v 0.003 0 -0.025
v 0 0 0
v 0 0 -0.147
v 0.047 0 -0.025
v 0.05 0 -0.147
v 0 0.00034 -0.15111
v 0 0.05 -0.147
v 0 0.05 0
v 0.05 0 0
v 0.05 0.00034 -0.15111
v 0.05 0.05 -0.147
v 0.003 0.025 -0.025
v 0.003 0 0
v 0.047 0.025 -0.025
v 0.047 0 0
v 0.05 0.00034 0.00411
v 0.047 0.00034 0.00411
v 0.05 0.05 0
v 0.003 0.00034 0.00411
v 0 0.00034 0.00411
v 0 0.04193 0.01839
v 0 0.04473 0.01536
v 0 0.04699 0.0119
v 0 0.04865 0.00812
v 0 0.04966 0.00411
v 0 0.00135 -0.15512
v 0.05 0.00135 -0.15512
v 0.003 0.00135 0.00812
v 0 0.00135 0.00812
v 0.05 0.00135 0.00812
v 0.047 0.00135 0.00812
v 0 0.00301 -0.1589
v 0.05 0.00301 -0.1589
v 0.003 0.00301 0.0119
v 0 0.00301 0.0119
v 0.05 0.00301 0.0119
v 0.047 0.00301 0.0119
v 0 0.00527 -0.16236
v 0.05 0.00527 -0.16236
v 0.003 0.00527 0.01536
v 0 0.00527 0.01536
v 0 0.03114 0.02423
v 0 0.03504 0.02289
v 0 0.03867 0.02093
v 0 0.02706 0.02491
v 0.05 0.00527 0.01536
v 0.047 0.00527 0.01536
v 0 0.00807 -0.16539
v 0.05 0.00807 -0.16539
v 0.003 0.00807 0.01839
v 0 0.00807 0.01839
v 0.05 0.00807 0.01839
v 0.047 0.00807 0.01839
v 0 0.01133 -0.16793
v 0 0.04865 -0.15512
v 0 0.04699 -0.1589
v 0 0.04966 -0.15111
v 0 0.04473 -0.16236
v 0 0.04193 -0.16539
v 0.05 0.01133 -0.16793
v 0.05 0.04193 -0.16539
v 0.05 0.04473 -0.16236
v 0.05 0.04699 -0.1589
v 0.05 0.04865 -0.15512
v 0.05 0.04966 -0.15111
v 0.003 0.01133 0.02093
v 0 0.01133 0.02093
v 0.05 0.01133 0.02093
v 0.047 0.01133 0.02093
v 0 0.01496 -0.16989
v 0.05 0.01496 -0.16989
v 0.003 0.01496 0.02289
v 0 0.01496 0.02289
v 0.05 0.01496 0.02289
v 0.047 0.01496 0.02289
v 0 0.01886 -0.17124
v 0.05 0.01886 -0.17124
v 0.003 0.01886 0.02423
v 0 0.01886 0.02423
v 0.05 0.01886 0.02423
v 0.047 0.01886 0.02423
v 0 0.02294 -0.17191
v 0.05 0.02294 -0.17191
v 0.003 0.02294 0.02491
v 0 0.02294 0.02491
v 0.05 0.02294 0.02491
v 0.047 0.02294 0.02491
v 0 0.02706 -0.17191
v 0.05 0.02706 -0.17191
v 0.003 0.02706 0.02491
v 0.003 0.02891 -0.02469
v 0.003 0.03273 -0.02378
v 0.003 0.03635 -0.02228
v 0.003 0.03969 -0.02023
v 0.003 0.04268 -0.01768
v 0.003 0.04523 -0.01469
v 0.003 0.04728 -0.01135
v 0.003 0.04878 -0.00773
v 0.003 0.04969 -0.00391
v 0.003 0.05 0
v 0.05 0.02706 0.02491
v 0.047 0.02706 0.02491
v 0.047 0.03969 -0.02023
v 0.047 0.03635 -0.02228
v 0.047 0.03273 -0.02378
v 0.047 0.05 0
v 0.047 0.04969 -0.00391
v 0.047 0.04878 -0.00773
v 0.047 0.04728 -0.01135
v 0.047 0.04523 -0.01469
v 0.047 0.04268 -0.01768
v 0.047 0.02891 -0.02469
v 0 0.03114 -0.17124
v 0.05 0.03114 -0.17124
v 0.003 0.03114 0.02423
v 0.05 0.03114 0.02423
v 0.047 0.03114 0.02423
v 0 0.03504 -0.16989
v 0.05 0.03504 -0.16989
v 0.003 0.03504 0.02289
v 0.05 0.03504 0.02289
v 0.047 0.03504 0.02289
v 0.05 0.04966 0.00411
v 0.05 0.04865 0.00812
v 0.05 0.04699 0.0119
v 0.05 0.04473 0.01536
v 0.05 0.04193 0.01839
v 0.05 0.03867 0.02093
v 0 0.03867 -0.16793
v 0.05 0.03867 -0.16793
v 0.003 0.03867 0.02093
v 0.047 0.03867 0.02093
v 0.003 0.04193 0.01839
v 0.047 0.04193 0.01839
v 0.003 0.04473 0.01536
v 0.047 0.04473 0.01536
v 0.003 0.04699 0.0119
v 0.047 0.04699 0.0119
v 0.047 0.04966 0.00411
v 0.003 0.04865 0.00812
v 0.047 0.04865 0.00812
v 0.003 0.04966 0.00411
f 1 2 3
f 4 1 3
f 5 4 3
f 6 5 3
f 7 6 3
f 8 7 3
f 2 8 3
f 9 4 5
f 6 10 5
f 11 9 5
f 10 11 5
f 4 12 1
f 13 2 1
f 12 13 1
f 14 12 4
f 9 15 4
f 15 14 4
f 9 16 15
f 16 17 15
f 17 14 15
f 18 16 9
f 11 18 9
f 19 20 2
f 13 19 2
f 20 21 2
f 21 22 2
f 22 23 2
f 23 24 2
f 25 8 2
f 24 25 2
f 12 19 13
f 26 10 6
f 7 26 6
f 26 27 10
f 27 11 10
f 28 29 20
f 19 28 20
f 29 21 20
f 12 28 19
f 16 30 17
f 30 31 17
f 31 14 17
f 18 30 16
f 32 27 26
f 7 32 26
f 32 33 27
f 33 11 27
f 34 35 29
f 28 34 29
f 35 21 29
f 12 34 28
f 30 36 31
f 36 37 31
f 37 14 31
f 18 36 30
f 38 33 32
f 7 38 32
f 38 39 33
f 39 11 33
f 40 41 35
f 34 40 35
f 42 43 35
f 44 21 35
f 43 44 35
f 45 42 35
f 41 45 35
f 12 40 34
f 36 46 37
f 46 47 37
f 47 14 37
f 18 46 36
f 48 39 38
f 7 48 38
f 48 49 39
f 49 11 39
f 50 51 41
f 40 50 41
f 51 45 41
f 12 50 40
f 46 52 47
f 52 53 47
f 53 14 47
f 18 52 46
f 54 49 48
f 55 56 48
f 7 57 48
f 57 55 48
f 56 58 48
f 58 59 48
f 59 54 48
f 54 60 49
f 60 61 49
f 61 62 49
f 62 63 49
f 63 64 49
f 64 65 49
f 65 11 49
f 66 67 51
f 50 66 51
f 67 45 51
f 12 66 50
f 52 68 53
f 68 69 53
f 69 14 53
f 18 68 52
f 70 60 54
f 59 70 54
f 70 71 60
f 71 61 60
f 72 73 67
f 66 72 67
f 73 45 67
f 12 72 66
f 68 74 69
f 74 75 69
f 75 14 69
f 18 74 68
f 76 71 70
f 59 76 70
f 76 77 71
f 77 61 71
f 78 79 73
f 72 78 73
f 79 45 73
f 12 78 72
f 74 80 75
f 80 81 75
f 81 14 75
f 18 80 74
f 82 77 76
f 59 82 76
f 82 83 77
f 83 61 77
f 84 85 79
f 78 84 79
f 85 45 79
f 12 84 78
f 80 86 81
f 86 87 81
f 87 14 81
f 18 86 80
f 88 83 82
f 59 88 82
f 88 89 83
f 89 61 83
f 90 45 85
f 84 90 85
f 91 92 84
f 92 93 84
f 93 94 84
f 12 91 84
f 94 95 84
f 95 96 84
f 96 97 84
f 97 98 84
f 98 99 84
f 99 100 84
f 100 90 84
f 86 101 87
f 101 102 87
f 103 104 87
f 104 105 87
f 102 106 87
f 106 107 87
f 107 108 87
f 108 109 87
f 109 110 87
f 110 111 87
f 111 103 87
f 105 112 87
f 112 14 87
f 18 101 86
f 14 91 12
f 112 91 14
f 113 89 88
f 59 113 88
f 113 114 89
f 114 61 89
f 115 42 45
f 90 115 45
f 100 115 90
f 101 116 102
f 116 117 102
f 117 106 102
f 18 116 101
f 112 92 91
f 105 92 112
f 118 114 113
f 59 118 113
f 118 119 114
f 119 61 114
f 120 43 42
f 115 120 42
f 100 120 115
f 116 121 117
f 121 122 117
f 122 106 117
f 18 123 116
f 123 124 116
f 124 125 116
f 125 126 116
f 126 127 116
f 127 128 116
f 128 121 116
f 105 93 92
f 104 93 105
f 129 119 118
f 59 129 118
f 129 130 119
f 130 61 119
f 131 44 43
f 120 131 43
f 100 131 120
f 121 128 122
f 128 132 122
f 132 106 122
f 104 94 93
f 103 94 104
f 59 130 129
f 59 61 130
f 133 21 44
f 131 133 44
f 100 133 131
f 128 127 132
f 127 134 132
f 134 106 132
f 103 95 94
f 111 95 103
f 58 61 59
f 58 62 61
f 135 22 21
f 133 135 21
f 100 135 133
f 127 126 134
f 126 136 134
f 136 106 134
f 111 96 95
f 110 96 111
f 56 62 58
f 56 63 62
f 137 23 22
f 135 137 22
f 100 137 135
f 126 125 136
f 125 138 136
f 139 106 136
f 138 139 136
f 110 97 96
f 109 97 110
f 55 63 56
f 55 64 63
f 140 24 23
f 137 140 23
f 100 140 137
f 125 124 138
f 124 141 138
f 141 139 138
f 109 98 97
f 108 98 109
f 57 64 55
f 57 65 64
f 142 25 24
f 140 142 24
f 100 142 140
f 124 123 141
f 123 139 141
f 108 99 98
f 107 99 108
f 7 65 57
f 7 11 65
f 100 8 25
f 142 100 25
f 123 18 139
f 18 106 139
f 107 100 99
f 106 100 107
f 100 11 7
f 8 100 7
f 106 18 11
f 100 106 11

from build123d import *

# Parameters (mm, degrees)
BOSS_EXTRUDE1_DEPTH = 0.05
SKETCH2_W           = 0.025
SKETCH2_H           = 0.025
CUT_EXTRUDE1_DEPTH  = 0.05
SKETCH4_R           = 0.025
BOSS_EXTRUDE2_DEPTH = 0.003
SKETCH5_R           = 0.025
BOSS_EXTRUDE3_DEPTH = 0.003
SKETCH6_W           = 0.025
SKETCH6_H           = 0.025
BOSS_EXTRUDE4_DEPTH = 0.003
SKETCH7_W           = 0.025
SKETCH7_H           = 0.025
BOSS_EXTRUDE5_DEPTH = 0.003


with BuildPart() as part:
    # Sketch1 → Boss-Extrude1 (new body)
    with BuildSketch(Plane(origin=(0, 0, 0), x_dir=(0, 0, -1), z_dir=(1, 0, 0))):
        with BuildLine():
            Line((0, 0), (0.147, 0))
            ThreePointArc((0.147, 0), (0.172, 0.025), (0.147, 0.05))
            Line((0.147, 0.05), (0, 0.05))
            ThreePointArc((0, 0.05), (0.025, 0.025), (0, 0))
        make_face()
    extrude(amount=BOSS_EXTRUDE1_DEPTH)

    # Sketch2 → Cut-Extrude1 (cut)
    with BuildSketch(Plane(origin=(0.05, 0, 0), x_dir=(0, 0, -1), z_dir=(1, 0, 0))):
        with Locations((0.0125, 0.0125)):
            Rectangle(SKETCH2_W, SKETCH2_H)
    extrude(amount=-CUT_EXTRUDE1_DEPTH, mode=Mode.SUBTRACT)

    # Sketch4 → Boss-Extrude2 (add)
    with BuildSketch(Plane(origin=(0.05, 0, 0), x_dir=(0, 0, -1), z_dir=(1, 0, 0))):
        with Locations((0, 0.025)):
            Circle(SKETCH4_R)
    extrude(amount=-BOSS_EXTRUDE2_DEPTH)

    # Sketch5 → Boss-Extrude3 (add)
    with BuildSketch(Plane.ZY):
        with Locations((0, 0.025)):
            Circle(SKETCH5_R)
    extrude(amount=-BOSS_EXTRUDE3_DEPTH)

    # Sketch6 → Boss-Extrude4 (add)
    with BuildSketch(Plane.ZY):
        with Locations((-0.0125, 0.0125)):
            Rectangle(SKETCH6_W, SKETCH6_H)
    extrude(amount=-BOSS_EXTRUDE4_DEPTH)

    # Sketch7 → Boss-Extrude5 (add)
    with BuildSketch(Plane(origin=(0.05, 0, 0), x_dir=(0, 0, -1), z_dir=(1, 0, 0))):
        with Locations((0.0125, 0.0125)):
            Rectangle(SKETCH7_W, SKETCH7_H)
    extrude(amount=-BOSS_EXTRUDE5_DEPTH)


solid = part.part
